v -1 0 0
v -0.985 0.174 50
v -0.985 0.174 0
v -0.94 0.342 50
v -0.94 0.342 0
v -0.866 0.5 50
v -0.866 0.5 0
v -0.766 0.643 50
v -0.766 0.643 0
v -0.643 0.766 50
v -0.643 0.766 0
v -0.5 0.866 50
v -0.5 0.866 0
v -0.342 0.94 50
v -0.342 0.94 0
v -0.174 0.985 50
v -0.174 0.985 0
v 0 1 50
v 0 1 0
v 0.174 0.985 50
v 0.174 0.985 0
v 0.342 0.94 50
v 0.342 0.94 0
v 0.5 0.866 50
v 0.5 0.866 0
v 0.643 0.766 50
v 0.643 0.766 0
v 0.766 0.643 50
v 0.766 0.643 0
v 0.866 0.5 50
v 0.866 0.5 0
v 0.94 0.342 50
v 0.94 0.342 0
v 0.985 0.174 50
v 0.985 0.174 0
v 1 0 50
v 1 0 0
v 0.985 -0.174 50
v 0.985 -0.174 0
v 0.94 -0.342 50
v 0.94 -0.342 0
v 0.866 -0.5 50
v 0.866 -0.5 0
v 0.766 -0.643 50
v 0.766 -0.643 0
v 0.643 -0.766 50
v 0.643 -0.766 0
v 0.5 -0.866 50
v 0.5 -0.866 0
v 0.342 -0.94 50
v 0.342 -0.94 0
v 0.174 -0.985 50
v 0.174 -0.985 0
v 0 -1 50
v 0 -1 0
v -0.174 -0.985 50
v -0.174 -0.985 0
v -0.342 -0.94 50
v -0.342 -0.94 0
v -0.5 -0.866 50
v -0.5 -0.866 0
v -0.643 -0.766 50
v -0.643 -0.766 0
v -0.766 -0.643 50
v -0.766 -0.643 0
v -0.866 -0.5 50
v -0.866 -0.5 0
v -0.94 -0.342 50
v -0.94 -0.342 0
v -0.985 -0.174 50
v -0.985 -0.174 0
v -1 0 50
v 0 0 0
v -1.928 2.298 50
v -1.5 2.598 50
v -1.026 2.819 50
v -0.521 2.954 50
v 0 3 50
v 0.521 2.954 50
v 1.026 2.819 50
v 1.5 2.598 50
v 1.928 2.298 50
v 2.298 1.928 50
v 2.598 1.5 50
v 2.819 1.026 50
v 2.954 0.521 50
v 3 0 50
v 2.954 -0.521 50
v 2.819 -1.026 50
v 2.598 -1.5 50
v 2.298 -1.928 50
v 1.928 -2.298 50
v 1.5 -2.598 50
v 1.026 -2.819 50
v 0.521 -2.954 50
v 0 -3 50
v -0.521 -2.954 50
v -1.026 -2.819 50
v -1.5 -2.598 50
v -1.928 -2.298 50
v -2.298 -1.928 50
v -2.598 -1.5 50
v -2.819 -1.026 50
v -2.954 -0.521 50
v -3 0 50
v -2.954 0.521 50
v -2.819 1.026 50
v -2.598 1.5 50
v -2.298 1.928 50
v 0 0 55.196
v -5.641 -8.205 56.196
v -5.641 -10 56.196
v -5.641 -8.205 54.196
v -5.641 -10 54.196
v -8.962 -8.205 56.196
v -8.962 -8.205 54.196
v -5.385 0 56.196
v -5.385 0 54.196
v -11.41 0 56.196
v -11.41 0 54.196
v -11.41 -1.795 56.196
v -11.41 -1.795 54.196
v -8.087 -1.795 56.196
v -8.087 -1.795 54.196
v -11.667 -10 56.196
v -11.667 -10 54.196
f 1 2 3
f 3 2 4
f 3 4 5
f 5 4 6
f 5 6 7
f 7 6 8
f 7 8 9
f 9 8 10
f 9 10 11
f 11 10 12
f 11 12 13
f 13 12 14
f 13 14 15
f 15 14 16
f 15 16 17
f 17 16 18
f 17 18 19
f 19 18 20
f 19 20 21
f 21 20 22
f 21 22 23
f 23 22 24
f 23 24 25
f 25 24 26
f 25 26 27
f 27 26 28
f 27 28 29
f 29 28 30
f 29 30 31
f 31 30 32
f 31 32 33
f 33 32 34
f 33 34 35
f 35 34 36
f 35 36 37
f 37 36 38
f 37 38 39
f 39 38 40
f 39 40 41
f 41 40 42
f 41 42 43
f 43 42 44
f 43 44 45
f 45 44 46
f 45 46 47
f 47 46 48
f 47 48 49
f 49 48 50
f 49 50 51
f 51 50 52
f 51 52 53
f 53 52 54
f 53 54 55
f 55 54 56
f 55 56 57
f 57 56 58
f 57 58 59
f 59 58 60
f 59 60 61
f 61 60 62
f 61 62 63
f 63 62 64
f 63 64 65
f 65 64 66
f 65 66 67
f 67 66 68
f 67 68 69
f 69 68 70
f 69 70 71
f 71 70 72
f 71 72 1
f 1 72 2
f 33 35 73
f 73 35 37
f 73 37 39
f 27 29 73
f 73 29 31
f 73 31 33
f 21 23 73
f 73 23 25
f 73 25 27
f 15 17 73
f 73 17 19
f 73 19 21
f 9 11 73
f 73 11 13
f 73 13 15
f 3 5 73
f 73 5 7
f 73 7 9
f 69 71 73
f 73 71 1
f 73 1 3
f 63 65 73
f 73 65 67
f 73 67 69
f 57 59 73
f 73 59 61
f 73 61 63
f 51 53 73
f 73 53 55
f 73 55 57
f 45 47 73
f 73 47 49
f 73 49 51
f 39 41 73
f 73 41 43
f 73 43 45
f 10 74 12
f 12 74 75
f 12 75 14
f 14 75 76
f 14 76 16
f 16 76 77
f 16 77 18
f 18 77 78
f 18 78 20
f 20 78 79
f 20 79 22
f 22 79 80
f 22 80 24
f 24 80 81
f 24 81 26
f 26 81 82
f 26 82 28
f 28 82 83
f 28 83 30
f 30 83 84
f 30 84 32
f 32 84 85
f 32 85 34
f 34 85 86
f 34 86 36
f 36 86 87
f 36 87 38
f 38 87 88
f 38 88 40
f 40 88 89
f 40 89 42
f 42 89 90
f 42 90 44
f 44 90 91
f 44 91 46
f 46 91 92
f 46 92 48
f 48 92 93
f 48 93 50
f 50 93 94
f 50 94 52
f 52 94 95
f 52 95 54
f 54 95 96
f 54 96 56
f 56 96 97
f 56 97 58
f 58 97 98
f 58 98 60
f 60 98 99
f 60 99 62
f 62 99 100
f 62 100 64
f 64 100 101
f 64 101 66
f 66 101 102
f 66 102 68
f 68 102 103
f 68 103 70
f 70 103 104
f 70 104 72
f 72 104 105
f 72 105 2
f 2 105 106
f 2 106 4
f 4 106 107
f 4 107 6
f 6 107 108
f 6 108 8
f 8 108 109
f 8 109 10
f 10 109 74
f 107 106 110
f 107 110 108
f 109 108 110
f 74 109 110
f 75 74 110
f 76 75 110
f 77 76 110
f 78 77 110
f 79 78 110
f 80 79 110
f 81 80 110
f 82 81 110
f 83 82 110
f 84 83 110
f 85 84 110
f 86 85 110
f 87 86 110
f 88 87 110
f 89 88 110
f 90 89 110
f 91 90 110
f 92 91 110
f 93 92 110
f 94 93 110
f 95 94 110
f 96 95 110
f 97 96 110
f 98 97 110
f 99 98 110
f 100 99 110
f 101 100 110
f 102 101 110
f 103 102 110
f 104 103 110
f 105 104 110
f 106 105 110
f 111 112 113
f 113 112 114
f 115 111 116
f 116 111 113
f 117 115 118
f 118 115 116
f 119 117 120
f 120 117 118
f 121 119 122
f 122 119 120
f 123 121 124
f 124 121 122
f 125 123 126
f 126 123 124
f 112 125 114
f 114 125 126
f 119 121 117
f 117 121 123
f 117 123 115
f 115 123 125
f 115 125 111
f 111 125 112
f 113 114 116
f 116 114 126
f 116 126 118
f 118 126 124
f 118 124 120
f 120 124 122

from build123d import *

# Parameters (mm, degrees)
SKETCH1_R           = 1
BOSS_EXTRUDE1_DEPTH = 50
BOSS_EXTRUDE2_DEPTH = 1


with BuildPart() as part:
    # Sketch1 → Boss-Extrude1 (new body)
    with BuildSketch(Plane.XY):
        Circle(SKETCH1_R)
    extrude(amount=BOSS_EXTRUDE1_DEPTH)

    # Sketch2 → Revolve1 (revolve)
    with BuildSketch(Plane(origin=(0, 0, 0), x_dir=(1, 0, 0), z_dir=(0, 1, 0))):
        Polygon((0, -50), (-3, -50), (0, -55.196152423), align=None)
    revolve(axis=Axis((0, 0, 55.196152423), (0, 0, -1)))


with BuildPart() as body_2:
    # Sketch4 → Boss-Extrude2 (new, symmetric)
    with BuildSketch(Plane.XY.offset(55.196152423)):
        Polygon((-5.641025641, -10), (-11.666666667, -10), (-8.086939103, -1.794871795), (-11.41025641, -1.794871795), (-11.41025641, 0), (-5.384615385, 0), (-8.962339744, -8.205128205), (-5.641025641, -8.205128205), align=None)
    extrude(amount=BOSS_EXTRUDE2_DEPTH, both=True)


solid = Compound([part.part, body_2.part])
